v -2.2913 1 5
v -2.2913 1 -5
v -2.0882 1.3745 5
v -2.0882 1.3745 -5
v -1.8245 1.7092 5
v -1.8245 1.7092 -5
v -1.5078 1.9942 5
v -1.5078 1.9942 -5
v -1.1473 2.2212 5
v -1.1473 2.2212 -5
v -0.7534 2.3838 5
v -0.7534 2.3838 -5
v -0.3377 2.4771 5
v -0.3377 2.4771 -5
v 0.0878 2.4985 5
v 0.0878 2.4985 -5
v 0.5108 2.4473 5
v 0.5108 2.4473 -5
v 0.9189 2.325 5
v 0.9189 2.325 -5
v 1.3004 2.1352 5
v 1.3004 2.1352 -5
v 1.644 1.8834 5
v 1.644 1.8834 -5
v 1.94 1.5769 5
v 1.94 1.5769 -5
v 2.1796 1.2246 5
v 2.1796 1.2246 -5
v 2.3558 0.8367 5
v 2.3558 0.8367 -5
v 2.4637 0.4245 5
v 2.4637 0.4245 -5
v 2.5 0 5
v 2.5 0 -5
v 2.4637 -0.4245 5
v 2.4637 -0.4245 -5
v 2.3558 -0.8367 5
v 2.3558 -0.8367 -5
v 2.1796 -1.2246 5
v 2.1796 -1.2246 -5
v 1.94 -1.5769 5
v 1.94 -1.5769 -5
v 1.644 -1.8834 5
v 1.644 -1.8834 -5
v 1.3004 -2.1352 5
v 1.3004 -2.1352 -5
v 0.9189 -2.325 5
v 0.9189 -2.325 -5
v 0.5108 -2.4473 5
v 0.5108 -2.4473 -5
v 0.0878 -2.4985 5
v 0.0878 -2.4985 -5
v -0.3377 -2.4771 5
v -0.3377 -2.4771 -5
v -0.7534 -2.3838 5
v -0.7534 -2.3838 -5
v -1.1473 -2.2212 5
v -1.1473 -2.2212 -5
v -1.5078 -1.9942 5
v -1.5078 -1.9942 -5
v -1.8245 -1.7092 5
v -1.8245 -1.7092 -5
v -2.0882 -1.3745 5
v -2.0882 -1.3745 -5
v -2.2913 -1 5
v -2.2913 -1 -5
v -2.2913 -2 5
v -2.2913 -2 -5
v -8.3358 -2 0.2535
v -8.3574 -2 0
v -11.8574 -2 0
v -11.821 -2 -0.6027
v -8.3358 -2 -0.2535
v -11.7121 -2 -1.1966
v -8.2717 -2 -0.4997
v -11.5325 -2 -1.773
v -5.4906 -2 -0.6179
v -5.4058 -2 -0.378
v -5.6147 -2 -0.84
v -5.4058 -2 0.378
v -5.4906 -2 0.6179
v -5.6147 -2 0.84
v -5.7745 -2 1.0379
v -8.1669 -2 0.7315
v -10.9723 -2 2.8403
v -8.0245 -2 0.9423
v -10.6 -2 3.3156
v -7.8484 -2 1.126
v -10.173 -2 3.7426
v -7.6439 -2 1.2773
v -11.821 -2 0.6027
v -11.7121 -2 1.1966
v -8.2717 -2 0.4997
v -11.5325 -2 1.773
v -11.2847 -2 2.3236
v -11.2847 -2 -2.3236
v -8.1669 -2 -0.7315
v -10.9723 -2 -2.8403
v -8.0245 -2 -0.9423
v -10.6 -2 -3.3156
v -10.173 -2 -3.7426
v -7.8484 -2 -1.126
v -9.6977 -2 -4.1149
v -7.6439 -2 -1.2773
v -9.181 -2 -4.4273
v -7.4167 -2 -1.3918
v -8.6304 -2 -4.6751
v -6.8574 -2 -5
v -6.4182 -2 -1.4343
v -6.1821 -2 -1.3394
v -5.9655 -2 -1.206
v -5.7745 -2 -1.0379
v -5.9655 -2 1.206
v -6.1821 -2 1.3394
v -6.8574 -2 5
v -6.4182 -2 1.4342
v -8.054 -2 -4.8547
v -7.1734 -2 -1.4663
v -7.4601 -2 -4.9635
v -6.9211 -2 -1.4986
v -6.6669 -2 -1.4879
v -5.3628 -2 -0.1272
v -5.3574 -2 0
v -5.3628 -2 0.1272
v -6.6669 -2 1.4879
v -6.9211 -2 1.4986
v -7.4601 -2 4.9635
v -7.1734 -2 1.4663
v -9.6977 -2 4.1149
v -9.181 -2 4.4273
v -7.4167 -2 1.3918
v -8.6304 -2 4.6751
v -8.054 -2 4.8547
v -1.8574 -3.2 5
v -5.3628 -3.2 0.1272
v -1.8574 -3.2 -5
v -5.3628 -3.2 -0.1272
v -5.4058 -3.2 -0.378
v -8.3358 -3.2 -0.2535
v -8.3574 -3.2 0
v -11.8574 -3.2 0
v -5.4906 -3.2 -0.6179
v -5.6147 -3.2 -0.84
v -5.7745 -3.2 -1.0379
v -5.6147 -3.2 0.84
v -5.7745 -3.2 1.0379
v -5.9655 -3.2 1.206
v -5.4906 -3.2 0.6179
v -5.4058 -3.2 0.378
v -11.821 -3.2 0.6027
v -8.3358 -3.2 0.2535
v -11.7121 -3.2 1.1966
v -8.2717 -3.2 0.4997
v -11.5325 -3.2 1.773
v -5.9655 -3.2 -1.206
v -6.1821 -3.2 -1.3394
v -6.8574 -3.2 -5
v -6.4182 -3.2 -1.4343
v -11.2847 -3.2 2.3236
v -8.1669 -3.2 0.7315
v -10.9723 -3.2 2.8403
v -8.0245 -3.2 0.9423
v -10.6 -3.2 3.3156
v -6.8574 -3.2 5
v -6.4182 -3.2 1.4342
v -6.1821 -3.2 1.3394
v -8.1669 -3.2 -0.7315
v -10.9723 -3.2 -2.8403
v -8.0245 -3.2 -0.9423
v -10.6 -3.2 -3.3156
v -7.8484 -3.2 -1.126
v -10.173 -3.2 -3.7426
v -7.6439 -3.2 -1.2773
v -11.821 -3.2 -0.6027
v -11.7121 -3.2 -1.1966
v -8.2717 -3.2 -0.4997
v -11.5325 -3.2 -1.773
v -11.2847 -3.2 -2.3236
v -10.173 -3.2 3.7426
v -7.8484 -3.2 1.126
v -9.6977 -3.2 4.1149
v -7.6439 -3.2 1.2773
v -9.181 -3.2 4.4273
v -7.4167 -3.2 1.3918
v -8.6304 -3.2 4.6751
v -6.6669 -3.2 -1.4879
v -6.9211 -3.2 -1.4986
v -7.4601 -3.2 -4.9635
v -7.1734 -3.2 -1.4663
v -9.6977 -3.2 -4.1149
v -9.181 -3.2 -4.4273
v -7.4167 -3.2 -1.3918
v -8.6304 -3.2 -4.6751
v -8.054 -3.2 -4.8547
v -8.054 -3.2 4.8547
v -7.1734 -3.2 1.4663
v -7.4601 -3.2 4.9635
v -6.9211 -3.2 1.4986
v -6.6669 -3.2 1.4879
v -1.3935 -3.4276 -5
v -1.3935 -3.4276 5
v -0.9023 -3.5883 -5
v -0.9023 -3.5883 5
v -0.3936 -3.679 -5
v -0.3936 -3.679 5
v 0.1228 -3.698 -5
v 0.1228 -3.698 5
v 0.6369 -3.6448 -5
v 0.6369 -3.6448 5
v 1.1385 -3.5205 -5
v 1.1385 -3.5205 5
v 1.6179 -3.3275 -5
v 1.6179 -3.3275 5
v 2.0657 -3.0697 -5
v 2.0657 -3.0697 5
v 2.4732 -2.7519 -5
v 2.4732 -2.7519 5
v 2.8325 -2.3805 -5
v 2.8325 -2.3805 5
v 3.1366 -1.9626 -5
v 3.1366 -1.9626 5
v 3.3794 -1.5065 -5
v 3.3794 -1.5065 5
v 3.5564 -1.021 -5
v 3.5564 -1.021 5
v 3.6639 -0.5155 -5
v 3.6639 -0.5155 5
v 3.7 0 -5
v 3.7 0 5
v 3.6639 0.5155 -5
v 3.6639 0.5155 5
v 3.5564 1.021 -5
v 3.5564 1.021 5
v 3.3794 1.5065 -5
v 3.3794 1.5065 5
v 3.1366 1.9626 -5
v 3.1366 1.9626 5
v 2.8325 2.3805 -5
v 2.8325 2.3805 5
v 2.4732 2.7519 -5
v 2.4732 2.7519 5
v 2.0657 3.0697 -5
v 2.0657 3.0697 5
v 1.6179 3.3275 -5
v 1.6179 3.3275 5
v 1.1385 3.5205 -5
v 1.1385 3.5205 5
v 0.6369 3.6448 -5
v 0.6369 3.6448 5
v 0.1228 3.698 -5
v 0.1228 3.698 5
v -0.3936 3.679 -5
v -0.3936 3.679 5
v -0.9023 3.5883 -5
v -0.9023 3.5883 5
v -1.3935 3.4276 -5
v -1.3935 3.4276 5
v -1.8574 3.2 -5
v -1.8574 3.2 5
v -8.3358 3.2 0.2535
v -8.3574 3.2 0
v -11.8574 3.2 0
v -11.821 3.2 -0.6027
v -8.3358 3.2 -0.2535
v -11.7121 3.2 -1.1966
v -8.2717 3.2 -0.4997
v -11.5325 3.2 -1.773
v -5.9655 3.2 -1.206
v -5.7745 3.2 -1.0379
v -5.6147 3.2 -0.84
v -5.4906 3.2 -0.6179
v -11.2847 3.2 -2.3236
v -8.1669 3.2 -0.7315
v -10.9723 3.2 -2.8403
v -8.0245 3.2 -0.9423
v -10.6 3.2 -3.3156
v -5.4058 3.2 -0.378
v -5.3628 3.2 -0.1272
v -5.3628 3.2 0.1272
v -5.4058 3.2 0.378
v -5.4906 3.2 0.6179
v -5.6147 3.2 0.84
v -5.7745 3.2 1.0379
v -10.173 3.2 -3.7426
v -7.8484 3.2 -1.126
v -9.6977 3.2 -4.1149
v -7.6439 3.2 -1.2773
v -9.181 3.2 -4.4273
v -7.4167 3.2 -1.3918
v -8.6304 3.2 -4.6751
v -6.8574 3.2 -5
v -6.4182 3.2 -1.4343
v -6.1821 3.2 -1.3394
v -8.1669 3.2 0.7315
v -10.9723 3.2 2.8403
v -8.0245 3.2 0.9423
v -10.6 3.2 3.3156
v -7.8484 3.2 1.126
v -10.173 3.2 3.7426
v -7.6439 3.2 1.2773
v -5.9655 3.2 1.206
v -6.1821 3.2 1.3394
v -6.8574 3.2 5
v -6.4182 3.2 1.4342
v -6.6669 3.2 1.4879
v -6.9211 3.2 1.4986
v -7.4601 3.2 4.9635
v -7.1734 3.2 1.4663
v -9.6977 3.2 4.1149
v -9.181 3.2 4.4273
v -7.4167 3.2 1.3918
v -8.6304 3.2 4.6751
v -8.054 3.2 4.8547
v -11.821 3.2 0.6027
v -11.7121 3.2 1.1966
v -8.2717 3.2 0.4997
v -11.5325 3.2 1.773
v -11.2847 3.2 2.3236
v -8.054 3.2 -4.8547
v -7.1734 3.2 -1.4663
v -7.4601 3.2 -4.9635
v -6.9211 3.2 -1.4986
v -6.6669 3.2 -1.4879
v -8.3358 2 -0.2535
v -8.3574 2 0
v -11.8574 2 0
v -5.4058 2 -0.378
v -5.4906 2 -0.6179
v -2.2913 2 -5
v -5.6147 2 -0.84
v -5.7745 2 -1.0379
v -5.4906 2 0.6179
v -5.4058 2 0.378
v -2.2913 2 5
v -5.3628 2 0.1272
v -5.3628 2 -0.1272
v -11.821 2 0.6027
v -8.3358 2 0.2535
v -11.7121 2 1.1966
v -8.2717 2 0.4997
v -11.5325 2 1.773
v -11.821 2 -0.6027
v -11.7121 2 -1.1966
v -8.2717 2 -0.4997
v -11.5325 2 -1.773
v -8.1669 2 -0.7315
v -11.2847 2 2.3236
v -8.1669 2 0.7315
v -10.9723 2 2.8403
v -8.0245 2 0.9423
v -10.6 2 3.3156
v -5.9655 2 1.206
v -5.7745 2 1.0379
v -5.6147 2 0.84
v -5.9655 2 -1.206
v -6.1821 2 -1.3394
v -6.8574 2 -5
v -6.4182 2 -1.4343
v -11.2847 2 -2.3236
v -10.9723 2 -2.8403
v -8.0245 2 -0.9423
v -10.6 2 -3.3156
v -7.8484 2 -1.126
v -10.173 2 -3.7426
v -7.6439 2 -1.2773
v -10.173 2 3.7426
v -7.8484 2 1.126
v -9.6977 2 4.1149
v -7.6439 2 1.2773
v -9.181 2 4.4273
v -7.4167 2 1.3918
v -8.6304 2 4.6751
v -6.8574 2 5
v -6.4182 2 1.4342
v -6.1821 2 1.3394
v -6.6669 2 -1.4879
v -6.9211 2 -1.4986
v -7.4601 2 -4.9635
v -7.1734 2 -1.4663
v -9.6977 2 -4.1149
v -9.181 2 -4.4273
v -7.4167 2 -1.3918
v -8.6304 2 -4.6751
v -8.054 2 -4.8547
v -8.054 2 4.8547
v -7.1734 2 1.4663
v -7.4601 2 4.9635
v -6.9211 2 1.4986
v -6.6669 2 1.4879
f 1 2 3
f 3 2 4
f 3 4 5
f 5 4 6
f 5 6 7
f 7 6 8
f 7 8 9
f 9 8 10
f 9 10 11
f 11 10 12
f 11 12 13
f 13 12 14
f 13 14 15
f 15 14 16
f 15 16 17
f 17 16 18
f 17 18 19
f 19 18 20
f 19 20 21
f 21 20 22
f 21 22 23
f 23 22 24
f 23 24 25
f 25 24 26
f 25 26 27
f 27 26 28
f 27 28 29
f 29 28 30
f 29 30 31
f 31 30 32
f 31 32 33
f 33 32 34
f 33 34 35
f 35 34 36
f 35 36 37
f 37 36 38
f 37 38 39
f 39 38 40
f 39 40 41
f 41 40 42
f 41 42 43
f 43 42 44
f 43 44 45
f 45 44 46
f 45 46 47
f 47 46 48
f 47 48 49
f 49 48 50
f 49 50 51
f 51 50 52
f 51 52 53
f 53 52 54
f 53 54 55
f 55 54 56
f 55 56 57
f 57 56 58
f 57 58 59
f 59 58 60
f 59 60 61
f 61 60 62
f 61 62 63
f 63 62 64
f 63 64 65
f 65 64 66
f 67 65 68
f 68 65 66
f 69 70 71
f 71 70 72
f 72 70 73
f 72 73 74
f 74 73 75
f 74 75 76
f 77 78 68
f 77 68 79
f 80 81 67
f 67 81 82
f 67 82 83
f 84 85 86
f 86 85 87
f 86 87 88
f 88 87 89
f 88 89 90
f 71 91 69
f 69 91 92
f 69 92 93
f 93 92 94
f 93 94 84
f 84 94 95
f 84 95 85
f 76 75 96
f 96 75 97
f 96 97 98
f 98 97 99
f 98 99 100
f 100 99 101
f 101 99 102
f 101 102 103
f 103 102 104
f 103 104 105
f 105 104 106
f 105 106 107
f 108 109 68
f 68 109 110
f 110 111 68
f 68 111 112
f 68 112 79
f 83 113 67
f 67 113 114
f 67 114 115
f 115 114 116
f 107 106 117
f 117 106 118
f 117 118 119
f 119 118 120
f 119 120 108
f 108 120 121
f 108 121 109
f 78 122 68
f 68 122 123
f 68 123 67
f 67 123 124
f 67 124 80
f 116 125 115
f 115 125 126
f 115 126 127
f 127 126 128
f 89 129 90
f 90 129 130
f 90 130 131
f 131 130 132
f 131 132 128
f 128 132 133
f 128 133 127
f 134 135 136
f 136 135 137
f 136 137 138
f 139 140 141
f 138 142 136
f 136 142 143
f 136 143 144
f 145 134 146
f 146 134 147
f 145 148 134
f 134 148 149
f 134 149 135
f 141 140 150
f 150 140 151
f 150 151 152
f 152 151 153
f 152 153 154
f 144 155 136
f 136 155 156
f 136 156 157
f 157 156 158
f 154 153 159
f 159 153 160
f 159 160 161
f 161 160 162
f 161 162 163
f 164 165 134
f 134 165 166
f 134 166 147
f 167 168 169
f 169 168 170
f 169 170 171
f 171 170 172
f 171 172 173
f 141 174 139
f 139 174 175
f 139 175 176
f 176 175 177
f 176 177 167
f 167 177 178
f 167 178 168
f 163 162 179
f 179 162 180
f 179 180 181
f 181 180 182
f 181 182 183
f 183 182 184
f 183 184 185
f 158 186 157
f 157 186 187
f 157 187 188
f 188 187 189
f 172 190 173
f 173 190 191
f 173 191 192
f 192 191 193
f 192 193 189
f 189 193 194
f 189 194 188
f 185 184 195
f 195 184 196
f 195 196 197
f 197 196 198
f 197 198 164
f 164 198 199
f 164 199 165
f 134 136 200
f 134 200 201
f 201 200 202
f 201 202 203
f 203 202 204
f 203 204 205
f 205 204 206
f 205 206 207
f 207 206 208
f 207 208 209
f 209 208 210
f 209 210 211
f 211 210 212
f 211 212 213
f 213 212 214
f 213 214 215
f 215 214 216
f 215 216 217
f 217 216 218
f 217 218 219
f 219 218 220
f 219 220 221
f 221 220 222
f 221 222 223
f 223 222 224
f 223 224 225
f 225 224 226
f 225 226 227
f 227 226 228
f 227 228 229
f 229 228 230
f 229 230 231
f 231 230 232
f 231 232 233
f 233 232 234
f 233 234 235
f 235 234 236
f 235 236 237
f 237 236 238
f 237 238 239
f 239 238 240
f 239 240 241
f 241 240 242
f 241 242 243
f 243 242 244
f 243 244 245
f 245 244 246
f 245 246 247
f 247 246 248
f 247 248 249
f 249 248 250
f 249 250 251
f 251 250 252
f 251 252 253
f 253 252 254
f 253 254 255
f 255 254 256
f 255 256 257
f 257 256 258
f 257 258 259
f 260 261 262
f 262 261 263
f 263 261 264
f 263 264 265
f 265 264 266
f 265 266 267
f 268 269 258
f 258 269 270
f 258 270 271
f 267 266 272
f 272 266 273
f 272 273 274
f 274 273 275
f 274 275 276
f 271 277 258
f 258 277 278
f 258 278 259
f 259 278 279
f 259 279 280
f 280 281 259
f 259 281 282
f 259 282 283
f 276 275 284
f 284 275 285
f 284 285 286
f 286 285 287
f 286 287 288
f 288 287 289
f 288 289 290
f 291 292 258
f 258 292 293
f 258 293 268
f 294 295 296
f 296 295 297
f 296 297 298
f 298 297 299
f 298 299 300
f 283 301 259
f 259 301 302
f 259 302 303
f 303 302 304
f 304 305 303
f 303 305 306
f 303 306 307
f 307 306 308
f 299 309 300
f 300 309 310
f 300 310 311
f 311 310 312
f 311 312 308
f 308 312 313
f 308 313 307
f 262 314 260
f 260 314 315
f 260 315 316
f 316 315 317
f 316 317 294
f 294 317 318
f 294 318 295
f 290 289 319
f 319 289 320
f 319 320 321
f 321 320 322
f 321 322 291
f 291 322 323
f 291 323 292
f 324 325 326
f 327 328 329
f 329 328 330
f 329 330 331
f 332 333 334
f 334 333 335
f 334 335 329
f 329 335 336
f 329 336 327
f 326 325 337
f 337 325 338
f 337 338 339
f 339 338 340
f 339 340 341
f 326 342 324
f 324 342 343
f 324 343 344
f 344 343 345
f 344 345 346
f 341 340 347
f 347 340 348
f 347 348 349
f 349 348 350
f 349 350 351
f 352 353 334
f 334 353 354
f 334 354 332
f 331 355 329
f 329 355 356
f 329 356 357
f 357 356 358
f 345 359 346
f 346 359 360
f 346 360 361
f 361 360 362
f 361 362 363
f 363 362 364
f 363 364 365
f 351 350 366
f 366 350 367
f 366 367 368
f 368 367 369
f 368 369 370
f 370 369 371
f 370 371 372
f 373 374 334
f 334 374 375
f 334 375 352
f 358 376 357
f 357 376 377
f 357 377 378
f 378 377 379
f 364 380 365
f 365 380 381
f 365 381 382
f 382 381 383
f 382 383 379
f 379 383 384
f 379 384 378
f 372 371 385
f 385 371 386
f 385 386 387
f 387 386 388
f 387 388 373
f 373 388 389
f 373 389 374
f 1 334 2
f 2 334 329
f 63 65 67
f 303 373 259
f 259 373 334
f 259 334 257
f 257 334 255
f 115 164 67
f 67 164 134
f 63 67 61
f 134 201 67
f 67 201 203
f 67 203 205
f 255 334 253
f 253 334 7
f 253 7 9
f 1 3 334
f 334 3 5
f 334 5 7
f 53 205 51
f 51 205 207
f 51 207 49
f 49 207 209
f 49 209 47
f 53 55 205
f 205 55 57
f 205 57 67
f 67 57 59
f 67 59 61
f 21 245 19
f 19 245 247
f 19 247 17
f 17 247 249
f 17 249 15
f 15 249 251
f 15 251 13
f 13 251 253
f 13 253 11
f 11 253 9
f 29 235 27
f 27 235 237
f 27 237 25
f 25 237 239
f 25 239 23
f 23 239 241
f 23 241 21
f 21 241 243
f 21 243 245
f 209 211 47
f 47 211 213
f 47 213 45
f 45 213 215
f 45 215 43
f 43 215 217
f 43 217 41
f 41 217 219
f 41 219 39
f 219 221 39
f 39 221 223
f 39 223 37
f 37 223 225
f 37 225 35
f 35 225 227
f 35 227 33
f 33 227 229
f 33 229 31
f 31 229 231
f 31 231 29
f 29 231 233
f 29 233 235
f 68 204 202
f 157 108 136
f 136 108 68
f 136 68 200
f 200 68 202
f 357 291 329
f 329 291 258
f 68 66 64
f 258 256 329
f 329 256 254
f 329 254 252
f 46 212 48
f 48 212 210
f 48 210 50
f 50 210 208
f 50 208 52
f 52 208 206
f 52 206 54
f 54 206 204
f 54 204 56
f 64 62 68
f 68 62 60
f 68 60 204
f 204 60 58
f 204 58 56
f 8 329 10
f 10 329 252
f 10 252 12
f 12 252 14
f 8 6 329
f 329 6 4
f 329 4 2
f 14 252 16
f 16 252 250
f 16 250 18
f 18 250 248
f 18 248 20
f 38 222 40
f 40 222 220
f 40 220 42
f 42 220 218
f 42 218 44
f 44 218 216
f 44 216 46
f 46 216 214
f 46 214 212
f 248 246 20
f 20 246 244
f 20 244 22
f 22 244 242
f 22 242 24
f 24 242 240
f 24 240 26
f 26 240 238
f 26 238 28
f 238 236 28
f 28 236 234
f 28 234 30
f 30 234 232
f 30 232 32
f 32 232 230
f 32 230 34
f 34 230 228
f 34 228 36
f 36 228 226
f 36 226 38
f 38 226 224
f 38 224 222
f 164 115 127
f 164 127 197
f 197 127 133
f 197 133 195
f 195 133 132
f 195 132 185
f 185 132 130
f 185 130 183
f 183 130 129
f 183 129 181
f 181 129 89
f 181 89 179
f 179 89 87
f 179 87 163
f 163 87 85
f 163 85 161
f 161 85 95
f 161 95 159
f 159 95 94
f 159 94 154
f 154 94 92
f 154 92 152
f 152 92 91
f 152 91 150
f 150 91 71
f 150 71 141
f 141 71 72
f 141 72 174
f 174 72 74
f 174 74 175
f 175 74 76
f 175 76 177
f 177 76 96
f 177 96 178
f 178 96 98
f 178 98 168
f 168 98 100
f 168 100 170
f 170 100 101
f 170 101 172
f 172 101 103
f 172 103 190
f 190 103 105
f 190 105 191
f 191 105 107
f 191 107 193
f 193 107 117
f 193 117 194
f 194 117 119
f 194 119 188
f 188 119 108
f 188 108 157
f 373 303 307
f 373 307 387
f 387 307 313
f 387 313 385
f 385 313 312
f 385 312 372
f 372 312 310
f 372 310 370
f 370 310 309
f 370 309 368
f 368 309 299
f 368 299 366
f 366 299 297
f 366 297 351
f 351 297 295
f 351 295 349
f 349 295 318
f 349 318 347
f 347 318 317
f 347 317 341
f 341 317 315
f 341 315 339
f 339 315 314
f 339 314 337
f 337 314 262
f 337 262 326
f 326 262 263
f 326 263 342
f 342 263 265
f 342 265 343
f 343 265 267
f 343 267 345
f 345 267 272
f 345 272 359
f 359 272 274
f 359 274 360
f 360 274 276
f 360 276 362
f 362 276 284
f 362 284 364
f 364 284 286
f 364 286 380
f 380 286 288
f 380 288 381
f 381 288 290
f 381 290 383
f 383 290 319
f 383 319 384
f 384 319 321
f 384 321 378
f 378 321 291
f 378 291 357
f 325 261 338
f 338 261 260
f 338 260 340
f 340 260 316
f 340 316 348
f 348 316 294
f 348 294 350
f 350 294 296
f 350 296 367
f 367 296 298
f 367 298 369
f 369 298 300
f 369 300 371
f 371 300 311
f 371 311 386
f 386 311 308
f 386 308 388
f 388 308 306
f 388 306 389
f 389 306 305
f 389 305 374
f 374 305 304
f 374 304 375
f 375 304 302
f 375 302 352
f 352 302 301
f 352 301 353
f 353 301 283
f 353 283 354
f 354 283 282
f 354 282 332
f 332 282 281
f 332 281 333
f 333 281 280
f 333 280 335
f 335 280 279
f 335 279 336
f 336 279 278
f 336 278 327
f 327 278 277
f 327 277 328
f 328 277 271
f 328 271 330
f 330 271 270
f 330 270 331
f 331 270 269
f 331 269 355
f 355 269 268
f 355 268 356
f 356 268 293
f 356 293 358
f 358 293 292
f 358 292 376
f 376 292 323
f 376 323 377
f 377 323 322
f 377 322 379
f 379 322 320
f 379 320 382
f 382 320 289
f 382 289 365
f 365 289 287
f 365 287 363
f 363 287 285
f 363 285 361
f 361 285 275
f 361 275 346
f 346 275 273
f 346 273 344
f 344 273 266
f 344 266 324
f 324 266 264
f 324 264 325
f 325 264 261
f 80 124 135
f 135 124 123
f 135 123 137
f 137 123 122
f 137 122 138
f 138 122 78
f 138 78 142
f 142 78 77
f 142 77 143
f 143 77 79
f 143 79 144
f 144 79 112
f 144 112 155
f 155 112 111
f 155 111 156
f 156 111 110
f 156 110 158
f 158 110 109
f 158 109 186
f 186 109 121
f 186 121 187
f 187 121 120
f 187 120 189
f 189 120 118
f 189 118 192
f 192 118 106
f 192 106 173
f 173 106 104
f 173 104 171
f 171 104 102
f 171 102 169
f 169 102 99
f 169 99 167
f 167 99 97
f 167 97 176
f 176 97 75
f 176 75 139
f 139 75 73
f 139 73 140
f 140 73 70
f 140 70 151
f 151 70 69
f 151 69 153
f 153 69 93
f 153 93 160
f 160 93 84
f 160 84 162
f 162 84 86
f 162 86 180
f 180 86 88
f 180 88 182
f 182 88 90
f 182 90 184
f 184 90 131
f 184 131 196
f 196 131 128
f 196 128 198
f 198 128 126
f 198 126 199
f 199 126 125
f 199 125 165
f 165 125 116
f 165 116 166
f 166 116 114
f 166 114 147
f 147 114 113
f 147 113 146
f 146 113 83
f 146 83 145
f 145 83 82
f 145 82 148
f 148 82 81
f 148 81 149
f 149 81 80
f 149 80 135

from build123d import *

# Parameters (mm, degrees)
BOSS_EXTRUDE1_DEPTH = 5
SKETCH2_R           = 1.5
CUT_EXTRUDE1_DEPTH  = 10


with BuildPart() as part:
    # Sketch1 → Boss-Extrude1 (new, symmetric)
    with BuildSketch(Plane.XY):
        with BuildLine():
            Line((-11.857417562, 2), (-11.857417562, 3.2))
            Line((-11.857417562, 3.2), (-1.857417562, 3.2))
            ThreePointArc((-1.857417562, 3.2), (3.7, 0), (-1.857417562, -3.2))
            Line((-1.857417562, -3.2), (-11.857417562, -3.2))
            Line((-11.857417562, -3.2), (-11.857417562, -2))
            Line((-11.857417562, -2), (-2.291287847, -2))
            Line((-2.291287847, -2), (-2.291287847, -1))
            ThreePointArc((-2.291287847, -1), (2.5, 0), (-2.291287847, 1))
            Line((-2.291287847, 1), (-2.291287847, 2))
            Line((-2.291287847, 2), (-11.857417562, 2))
        make_face()
    extrude(amount=BOSS_EXTRUDE1_DEPTH, both=True)

    # Sketch2 → Cut-Extrude1 (cut)
    with BuildSketch(Plane(origin=(0, 3.2, 0), x_dir=(1, 0, 0), z_dir=(0, 1, 0))):
        with Locations(Location((-6.857417562, 0, 0), (0, 0, 180))):
            Circle(SKETCH2_R)
        with BuildLine():
            Line((-6.857417562, 5), (-12.857417562, 5))
            Line((-12.857417562, 5), (-12.857417562, -5))
            Line((-12.857417562, -5), (-6.857417562, -5))
            ThreePointArc((-6.857417562, -5), (-11.857417562, 0), (-6.857417562, 5))
        make_face()
    extrude(amount=-CUT_EXTRUDE1_DEPTH, mode=Mode.SUBTRACT)


solid = part.part
